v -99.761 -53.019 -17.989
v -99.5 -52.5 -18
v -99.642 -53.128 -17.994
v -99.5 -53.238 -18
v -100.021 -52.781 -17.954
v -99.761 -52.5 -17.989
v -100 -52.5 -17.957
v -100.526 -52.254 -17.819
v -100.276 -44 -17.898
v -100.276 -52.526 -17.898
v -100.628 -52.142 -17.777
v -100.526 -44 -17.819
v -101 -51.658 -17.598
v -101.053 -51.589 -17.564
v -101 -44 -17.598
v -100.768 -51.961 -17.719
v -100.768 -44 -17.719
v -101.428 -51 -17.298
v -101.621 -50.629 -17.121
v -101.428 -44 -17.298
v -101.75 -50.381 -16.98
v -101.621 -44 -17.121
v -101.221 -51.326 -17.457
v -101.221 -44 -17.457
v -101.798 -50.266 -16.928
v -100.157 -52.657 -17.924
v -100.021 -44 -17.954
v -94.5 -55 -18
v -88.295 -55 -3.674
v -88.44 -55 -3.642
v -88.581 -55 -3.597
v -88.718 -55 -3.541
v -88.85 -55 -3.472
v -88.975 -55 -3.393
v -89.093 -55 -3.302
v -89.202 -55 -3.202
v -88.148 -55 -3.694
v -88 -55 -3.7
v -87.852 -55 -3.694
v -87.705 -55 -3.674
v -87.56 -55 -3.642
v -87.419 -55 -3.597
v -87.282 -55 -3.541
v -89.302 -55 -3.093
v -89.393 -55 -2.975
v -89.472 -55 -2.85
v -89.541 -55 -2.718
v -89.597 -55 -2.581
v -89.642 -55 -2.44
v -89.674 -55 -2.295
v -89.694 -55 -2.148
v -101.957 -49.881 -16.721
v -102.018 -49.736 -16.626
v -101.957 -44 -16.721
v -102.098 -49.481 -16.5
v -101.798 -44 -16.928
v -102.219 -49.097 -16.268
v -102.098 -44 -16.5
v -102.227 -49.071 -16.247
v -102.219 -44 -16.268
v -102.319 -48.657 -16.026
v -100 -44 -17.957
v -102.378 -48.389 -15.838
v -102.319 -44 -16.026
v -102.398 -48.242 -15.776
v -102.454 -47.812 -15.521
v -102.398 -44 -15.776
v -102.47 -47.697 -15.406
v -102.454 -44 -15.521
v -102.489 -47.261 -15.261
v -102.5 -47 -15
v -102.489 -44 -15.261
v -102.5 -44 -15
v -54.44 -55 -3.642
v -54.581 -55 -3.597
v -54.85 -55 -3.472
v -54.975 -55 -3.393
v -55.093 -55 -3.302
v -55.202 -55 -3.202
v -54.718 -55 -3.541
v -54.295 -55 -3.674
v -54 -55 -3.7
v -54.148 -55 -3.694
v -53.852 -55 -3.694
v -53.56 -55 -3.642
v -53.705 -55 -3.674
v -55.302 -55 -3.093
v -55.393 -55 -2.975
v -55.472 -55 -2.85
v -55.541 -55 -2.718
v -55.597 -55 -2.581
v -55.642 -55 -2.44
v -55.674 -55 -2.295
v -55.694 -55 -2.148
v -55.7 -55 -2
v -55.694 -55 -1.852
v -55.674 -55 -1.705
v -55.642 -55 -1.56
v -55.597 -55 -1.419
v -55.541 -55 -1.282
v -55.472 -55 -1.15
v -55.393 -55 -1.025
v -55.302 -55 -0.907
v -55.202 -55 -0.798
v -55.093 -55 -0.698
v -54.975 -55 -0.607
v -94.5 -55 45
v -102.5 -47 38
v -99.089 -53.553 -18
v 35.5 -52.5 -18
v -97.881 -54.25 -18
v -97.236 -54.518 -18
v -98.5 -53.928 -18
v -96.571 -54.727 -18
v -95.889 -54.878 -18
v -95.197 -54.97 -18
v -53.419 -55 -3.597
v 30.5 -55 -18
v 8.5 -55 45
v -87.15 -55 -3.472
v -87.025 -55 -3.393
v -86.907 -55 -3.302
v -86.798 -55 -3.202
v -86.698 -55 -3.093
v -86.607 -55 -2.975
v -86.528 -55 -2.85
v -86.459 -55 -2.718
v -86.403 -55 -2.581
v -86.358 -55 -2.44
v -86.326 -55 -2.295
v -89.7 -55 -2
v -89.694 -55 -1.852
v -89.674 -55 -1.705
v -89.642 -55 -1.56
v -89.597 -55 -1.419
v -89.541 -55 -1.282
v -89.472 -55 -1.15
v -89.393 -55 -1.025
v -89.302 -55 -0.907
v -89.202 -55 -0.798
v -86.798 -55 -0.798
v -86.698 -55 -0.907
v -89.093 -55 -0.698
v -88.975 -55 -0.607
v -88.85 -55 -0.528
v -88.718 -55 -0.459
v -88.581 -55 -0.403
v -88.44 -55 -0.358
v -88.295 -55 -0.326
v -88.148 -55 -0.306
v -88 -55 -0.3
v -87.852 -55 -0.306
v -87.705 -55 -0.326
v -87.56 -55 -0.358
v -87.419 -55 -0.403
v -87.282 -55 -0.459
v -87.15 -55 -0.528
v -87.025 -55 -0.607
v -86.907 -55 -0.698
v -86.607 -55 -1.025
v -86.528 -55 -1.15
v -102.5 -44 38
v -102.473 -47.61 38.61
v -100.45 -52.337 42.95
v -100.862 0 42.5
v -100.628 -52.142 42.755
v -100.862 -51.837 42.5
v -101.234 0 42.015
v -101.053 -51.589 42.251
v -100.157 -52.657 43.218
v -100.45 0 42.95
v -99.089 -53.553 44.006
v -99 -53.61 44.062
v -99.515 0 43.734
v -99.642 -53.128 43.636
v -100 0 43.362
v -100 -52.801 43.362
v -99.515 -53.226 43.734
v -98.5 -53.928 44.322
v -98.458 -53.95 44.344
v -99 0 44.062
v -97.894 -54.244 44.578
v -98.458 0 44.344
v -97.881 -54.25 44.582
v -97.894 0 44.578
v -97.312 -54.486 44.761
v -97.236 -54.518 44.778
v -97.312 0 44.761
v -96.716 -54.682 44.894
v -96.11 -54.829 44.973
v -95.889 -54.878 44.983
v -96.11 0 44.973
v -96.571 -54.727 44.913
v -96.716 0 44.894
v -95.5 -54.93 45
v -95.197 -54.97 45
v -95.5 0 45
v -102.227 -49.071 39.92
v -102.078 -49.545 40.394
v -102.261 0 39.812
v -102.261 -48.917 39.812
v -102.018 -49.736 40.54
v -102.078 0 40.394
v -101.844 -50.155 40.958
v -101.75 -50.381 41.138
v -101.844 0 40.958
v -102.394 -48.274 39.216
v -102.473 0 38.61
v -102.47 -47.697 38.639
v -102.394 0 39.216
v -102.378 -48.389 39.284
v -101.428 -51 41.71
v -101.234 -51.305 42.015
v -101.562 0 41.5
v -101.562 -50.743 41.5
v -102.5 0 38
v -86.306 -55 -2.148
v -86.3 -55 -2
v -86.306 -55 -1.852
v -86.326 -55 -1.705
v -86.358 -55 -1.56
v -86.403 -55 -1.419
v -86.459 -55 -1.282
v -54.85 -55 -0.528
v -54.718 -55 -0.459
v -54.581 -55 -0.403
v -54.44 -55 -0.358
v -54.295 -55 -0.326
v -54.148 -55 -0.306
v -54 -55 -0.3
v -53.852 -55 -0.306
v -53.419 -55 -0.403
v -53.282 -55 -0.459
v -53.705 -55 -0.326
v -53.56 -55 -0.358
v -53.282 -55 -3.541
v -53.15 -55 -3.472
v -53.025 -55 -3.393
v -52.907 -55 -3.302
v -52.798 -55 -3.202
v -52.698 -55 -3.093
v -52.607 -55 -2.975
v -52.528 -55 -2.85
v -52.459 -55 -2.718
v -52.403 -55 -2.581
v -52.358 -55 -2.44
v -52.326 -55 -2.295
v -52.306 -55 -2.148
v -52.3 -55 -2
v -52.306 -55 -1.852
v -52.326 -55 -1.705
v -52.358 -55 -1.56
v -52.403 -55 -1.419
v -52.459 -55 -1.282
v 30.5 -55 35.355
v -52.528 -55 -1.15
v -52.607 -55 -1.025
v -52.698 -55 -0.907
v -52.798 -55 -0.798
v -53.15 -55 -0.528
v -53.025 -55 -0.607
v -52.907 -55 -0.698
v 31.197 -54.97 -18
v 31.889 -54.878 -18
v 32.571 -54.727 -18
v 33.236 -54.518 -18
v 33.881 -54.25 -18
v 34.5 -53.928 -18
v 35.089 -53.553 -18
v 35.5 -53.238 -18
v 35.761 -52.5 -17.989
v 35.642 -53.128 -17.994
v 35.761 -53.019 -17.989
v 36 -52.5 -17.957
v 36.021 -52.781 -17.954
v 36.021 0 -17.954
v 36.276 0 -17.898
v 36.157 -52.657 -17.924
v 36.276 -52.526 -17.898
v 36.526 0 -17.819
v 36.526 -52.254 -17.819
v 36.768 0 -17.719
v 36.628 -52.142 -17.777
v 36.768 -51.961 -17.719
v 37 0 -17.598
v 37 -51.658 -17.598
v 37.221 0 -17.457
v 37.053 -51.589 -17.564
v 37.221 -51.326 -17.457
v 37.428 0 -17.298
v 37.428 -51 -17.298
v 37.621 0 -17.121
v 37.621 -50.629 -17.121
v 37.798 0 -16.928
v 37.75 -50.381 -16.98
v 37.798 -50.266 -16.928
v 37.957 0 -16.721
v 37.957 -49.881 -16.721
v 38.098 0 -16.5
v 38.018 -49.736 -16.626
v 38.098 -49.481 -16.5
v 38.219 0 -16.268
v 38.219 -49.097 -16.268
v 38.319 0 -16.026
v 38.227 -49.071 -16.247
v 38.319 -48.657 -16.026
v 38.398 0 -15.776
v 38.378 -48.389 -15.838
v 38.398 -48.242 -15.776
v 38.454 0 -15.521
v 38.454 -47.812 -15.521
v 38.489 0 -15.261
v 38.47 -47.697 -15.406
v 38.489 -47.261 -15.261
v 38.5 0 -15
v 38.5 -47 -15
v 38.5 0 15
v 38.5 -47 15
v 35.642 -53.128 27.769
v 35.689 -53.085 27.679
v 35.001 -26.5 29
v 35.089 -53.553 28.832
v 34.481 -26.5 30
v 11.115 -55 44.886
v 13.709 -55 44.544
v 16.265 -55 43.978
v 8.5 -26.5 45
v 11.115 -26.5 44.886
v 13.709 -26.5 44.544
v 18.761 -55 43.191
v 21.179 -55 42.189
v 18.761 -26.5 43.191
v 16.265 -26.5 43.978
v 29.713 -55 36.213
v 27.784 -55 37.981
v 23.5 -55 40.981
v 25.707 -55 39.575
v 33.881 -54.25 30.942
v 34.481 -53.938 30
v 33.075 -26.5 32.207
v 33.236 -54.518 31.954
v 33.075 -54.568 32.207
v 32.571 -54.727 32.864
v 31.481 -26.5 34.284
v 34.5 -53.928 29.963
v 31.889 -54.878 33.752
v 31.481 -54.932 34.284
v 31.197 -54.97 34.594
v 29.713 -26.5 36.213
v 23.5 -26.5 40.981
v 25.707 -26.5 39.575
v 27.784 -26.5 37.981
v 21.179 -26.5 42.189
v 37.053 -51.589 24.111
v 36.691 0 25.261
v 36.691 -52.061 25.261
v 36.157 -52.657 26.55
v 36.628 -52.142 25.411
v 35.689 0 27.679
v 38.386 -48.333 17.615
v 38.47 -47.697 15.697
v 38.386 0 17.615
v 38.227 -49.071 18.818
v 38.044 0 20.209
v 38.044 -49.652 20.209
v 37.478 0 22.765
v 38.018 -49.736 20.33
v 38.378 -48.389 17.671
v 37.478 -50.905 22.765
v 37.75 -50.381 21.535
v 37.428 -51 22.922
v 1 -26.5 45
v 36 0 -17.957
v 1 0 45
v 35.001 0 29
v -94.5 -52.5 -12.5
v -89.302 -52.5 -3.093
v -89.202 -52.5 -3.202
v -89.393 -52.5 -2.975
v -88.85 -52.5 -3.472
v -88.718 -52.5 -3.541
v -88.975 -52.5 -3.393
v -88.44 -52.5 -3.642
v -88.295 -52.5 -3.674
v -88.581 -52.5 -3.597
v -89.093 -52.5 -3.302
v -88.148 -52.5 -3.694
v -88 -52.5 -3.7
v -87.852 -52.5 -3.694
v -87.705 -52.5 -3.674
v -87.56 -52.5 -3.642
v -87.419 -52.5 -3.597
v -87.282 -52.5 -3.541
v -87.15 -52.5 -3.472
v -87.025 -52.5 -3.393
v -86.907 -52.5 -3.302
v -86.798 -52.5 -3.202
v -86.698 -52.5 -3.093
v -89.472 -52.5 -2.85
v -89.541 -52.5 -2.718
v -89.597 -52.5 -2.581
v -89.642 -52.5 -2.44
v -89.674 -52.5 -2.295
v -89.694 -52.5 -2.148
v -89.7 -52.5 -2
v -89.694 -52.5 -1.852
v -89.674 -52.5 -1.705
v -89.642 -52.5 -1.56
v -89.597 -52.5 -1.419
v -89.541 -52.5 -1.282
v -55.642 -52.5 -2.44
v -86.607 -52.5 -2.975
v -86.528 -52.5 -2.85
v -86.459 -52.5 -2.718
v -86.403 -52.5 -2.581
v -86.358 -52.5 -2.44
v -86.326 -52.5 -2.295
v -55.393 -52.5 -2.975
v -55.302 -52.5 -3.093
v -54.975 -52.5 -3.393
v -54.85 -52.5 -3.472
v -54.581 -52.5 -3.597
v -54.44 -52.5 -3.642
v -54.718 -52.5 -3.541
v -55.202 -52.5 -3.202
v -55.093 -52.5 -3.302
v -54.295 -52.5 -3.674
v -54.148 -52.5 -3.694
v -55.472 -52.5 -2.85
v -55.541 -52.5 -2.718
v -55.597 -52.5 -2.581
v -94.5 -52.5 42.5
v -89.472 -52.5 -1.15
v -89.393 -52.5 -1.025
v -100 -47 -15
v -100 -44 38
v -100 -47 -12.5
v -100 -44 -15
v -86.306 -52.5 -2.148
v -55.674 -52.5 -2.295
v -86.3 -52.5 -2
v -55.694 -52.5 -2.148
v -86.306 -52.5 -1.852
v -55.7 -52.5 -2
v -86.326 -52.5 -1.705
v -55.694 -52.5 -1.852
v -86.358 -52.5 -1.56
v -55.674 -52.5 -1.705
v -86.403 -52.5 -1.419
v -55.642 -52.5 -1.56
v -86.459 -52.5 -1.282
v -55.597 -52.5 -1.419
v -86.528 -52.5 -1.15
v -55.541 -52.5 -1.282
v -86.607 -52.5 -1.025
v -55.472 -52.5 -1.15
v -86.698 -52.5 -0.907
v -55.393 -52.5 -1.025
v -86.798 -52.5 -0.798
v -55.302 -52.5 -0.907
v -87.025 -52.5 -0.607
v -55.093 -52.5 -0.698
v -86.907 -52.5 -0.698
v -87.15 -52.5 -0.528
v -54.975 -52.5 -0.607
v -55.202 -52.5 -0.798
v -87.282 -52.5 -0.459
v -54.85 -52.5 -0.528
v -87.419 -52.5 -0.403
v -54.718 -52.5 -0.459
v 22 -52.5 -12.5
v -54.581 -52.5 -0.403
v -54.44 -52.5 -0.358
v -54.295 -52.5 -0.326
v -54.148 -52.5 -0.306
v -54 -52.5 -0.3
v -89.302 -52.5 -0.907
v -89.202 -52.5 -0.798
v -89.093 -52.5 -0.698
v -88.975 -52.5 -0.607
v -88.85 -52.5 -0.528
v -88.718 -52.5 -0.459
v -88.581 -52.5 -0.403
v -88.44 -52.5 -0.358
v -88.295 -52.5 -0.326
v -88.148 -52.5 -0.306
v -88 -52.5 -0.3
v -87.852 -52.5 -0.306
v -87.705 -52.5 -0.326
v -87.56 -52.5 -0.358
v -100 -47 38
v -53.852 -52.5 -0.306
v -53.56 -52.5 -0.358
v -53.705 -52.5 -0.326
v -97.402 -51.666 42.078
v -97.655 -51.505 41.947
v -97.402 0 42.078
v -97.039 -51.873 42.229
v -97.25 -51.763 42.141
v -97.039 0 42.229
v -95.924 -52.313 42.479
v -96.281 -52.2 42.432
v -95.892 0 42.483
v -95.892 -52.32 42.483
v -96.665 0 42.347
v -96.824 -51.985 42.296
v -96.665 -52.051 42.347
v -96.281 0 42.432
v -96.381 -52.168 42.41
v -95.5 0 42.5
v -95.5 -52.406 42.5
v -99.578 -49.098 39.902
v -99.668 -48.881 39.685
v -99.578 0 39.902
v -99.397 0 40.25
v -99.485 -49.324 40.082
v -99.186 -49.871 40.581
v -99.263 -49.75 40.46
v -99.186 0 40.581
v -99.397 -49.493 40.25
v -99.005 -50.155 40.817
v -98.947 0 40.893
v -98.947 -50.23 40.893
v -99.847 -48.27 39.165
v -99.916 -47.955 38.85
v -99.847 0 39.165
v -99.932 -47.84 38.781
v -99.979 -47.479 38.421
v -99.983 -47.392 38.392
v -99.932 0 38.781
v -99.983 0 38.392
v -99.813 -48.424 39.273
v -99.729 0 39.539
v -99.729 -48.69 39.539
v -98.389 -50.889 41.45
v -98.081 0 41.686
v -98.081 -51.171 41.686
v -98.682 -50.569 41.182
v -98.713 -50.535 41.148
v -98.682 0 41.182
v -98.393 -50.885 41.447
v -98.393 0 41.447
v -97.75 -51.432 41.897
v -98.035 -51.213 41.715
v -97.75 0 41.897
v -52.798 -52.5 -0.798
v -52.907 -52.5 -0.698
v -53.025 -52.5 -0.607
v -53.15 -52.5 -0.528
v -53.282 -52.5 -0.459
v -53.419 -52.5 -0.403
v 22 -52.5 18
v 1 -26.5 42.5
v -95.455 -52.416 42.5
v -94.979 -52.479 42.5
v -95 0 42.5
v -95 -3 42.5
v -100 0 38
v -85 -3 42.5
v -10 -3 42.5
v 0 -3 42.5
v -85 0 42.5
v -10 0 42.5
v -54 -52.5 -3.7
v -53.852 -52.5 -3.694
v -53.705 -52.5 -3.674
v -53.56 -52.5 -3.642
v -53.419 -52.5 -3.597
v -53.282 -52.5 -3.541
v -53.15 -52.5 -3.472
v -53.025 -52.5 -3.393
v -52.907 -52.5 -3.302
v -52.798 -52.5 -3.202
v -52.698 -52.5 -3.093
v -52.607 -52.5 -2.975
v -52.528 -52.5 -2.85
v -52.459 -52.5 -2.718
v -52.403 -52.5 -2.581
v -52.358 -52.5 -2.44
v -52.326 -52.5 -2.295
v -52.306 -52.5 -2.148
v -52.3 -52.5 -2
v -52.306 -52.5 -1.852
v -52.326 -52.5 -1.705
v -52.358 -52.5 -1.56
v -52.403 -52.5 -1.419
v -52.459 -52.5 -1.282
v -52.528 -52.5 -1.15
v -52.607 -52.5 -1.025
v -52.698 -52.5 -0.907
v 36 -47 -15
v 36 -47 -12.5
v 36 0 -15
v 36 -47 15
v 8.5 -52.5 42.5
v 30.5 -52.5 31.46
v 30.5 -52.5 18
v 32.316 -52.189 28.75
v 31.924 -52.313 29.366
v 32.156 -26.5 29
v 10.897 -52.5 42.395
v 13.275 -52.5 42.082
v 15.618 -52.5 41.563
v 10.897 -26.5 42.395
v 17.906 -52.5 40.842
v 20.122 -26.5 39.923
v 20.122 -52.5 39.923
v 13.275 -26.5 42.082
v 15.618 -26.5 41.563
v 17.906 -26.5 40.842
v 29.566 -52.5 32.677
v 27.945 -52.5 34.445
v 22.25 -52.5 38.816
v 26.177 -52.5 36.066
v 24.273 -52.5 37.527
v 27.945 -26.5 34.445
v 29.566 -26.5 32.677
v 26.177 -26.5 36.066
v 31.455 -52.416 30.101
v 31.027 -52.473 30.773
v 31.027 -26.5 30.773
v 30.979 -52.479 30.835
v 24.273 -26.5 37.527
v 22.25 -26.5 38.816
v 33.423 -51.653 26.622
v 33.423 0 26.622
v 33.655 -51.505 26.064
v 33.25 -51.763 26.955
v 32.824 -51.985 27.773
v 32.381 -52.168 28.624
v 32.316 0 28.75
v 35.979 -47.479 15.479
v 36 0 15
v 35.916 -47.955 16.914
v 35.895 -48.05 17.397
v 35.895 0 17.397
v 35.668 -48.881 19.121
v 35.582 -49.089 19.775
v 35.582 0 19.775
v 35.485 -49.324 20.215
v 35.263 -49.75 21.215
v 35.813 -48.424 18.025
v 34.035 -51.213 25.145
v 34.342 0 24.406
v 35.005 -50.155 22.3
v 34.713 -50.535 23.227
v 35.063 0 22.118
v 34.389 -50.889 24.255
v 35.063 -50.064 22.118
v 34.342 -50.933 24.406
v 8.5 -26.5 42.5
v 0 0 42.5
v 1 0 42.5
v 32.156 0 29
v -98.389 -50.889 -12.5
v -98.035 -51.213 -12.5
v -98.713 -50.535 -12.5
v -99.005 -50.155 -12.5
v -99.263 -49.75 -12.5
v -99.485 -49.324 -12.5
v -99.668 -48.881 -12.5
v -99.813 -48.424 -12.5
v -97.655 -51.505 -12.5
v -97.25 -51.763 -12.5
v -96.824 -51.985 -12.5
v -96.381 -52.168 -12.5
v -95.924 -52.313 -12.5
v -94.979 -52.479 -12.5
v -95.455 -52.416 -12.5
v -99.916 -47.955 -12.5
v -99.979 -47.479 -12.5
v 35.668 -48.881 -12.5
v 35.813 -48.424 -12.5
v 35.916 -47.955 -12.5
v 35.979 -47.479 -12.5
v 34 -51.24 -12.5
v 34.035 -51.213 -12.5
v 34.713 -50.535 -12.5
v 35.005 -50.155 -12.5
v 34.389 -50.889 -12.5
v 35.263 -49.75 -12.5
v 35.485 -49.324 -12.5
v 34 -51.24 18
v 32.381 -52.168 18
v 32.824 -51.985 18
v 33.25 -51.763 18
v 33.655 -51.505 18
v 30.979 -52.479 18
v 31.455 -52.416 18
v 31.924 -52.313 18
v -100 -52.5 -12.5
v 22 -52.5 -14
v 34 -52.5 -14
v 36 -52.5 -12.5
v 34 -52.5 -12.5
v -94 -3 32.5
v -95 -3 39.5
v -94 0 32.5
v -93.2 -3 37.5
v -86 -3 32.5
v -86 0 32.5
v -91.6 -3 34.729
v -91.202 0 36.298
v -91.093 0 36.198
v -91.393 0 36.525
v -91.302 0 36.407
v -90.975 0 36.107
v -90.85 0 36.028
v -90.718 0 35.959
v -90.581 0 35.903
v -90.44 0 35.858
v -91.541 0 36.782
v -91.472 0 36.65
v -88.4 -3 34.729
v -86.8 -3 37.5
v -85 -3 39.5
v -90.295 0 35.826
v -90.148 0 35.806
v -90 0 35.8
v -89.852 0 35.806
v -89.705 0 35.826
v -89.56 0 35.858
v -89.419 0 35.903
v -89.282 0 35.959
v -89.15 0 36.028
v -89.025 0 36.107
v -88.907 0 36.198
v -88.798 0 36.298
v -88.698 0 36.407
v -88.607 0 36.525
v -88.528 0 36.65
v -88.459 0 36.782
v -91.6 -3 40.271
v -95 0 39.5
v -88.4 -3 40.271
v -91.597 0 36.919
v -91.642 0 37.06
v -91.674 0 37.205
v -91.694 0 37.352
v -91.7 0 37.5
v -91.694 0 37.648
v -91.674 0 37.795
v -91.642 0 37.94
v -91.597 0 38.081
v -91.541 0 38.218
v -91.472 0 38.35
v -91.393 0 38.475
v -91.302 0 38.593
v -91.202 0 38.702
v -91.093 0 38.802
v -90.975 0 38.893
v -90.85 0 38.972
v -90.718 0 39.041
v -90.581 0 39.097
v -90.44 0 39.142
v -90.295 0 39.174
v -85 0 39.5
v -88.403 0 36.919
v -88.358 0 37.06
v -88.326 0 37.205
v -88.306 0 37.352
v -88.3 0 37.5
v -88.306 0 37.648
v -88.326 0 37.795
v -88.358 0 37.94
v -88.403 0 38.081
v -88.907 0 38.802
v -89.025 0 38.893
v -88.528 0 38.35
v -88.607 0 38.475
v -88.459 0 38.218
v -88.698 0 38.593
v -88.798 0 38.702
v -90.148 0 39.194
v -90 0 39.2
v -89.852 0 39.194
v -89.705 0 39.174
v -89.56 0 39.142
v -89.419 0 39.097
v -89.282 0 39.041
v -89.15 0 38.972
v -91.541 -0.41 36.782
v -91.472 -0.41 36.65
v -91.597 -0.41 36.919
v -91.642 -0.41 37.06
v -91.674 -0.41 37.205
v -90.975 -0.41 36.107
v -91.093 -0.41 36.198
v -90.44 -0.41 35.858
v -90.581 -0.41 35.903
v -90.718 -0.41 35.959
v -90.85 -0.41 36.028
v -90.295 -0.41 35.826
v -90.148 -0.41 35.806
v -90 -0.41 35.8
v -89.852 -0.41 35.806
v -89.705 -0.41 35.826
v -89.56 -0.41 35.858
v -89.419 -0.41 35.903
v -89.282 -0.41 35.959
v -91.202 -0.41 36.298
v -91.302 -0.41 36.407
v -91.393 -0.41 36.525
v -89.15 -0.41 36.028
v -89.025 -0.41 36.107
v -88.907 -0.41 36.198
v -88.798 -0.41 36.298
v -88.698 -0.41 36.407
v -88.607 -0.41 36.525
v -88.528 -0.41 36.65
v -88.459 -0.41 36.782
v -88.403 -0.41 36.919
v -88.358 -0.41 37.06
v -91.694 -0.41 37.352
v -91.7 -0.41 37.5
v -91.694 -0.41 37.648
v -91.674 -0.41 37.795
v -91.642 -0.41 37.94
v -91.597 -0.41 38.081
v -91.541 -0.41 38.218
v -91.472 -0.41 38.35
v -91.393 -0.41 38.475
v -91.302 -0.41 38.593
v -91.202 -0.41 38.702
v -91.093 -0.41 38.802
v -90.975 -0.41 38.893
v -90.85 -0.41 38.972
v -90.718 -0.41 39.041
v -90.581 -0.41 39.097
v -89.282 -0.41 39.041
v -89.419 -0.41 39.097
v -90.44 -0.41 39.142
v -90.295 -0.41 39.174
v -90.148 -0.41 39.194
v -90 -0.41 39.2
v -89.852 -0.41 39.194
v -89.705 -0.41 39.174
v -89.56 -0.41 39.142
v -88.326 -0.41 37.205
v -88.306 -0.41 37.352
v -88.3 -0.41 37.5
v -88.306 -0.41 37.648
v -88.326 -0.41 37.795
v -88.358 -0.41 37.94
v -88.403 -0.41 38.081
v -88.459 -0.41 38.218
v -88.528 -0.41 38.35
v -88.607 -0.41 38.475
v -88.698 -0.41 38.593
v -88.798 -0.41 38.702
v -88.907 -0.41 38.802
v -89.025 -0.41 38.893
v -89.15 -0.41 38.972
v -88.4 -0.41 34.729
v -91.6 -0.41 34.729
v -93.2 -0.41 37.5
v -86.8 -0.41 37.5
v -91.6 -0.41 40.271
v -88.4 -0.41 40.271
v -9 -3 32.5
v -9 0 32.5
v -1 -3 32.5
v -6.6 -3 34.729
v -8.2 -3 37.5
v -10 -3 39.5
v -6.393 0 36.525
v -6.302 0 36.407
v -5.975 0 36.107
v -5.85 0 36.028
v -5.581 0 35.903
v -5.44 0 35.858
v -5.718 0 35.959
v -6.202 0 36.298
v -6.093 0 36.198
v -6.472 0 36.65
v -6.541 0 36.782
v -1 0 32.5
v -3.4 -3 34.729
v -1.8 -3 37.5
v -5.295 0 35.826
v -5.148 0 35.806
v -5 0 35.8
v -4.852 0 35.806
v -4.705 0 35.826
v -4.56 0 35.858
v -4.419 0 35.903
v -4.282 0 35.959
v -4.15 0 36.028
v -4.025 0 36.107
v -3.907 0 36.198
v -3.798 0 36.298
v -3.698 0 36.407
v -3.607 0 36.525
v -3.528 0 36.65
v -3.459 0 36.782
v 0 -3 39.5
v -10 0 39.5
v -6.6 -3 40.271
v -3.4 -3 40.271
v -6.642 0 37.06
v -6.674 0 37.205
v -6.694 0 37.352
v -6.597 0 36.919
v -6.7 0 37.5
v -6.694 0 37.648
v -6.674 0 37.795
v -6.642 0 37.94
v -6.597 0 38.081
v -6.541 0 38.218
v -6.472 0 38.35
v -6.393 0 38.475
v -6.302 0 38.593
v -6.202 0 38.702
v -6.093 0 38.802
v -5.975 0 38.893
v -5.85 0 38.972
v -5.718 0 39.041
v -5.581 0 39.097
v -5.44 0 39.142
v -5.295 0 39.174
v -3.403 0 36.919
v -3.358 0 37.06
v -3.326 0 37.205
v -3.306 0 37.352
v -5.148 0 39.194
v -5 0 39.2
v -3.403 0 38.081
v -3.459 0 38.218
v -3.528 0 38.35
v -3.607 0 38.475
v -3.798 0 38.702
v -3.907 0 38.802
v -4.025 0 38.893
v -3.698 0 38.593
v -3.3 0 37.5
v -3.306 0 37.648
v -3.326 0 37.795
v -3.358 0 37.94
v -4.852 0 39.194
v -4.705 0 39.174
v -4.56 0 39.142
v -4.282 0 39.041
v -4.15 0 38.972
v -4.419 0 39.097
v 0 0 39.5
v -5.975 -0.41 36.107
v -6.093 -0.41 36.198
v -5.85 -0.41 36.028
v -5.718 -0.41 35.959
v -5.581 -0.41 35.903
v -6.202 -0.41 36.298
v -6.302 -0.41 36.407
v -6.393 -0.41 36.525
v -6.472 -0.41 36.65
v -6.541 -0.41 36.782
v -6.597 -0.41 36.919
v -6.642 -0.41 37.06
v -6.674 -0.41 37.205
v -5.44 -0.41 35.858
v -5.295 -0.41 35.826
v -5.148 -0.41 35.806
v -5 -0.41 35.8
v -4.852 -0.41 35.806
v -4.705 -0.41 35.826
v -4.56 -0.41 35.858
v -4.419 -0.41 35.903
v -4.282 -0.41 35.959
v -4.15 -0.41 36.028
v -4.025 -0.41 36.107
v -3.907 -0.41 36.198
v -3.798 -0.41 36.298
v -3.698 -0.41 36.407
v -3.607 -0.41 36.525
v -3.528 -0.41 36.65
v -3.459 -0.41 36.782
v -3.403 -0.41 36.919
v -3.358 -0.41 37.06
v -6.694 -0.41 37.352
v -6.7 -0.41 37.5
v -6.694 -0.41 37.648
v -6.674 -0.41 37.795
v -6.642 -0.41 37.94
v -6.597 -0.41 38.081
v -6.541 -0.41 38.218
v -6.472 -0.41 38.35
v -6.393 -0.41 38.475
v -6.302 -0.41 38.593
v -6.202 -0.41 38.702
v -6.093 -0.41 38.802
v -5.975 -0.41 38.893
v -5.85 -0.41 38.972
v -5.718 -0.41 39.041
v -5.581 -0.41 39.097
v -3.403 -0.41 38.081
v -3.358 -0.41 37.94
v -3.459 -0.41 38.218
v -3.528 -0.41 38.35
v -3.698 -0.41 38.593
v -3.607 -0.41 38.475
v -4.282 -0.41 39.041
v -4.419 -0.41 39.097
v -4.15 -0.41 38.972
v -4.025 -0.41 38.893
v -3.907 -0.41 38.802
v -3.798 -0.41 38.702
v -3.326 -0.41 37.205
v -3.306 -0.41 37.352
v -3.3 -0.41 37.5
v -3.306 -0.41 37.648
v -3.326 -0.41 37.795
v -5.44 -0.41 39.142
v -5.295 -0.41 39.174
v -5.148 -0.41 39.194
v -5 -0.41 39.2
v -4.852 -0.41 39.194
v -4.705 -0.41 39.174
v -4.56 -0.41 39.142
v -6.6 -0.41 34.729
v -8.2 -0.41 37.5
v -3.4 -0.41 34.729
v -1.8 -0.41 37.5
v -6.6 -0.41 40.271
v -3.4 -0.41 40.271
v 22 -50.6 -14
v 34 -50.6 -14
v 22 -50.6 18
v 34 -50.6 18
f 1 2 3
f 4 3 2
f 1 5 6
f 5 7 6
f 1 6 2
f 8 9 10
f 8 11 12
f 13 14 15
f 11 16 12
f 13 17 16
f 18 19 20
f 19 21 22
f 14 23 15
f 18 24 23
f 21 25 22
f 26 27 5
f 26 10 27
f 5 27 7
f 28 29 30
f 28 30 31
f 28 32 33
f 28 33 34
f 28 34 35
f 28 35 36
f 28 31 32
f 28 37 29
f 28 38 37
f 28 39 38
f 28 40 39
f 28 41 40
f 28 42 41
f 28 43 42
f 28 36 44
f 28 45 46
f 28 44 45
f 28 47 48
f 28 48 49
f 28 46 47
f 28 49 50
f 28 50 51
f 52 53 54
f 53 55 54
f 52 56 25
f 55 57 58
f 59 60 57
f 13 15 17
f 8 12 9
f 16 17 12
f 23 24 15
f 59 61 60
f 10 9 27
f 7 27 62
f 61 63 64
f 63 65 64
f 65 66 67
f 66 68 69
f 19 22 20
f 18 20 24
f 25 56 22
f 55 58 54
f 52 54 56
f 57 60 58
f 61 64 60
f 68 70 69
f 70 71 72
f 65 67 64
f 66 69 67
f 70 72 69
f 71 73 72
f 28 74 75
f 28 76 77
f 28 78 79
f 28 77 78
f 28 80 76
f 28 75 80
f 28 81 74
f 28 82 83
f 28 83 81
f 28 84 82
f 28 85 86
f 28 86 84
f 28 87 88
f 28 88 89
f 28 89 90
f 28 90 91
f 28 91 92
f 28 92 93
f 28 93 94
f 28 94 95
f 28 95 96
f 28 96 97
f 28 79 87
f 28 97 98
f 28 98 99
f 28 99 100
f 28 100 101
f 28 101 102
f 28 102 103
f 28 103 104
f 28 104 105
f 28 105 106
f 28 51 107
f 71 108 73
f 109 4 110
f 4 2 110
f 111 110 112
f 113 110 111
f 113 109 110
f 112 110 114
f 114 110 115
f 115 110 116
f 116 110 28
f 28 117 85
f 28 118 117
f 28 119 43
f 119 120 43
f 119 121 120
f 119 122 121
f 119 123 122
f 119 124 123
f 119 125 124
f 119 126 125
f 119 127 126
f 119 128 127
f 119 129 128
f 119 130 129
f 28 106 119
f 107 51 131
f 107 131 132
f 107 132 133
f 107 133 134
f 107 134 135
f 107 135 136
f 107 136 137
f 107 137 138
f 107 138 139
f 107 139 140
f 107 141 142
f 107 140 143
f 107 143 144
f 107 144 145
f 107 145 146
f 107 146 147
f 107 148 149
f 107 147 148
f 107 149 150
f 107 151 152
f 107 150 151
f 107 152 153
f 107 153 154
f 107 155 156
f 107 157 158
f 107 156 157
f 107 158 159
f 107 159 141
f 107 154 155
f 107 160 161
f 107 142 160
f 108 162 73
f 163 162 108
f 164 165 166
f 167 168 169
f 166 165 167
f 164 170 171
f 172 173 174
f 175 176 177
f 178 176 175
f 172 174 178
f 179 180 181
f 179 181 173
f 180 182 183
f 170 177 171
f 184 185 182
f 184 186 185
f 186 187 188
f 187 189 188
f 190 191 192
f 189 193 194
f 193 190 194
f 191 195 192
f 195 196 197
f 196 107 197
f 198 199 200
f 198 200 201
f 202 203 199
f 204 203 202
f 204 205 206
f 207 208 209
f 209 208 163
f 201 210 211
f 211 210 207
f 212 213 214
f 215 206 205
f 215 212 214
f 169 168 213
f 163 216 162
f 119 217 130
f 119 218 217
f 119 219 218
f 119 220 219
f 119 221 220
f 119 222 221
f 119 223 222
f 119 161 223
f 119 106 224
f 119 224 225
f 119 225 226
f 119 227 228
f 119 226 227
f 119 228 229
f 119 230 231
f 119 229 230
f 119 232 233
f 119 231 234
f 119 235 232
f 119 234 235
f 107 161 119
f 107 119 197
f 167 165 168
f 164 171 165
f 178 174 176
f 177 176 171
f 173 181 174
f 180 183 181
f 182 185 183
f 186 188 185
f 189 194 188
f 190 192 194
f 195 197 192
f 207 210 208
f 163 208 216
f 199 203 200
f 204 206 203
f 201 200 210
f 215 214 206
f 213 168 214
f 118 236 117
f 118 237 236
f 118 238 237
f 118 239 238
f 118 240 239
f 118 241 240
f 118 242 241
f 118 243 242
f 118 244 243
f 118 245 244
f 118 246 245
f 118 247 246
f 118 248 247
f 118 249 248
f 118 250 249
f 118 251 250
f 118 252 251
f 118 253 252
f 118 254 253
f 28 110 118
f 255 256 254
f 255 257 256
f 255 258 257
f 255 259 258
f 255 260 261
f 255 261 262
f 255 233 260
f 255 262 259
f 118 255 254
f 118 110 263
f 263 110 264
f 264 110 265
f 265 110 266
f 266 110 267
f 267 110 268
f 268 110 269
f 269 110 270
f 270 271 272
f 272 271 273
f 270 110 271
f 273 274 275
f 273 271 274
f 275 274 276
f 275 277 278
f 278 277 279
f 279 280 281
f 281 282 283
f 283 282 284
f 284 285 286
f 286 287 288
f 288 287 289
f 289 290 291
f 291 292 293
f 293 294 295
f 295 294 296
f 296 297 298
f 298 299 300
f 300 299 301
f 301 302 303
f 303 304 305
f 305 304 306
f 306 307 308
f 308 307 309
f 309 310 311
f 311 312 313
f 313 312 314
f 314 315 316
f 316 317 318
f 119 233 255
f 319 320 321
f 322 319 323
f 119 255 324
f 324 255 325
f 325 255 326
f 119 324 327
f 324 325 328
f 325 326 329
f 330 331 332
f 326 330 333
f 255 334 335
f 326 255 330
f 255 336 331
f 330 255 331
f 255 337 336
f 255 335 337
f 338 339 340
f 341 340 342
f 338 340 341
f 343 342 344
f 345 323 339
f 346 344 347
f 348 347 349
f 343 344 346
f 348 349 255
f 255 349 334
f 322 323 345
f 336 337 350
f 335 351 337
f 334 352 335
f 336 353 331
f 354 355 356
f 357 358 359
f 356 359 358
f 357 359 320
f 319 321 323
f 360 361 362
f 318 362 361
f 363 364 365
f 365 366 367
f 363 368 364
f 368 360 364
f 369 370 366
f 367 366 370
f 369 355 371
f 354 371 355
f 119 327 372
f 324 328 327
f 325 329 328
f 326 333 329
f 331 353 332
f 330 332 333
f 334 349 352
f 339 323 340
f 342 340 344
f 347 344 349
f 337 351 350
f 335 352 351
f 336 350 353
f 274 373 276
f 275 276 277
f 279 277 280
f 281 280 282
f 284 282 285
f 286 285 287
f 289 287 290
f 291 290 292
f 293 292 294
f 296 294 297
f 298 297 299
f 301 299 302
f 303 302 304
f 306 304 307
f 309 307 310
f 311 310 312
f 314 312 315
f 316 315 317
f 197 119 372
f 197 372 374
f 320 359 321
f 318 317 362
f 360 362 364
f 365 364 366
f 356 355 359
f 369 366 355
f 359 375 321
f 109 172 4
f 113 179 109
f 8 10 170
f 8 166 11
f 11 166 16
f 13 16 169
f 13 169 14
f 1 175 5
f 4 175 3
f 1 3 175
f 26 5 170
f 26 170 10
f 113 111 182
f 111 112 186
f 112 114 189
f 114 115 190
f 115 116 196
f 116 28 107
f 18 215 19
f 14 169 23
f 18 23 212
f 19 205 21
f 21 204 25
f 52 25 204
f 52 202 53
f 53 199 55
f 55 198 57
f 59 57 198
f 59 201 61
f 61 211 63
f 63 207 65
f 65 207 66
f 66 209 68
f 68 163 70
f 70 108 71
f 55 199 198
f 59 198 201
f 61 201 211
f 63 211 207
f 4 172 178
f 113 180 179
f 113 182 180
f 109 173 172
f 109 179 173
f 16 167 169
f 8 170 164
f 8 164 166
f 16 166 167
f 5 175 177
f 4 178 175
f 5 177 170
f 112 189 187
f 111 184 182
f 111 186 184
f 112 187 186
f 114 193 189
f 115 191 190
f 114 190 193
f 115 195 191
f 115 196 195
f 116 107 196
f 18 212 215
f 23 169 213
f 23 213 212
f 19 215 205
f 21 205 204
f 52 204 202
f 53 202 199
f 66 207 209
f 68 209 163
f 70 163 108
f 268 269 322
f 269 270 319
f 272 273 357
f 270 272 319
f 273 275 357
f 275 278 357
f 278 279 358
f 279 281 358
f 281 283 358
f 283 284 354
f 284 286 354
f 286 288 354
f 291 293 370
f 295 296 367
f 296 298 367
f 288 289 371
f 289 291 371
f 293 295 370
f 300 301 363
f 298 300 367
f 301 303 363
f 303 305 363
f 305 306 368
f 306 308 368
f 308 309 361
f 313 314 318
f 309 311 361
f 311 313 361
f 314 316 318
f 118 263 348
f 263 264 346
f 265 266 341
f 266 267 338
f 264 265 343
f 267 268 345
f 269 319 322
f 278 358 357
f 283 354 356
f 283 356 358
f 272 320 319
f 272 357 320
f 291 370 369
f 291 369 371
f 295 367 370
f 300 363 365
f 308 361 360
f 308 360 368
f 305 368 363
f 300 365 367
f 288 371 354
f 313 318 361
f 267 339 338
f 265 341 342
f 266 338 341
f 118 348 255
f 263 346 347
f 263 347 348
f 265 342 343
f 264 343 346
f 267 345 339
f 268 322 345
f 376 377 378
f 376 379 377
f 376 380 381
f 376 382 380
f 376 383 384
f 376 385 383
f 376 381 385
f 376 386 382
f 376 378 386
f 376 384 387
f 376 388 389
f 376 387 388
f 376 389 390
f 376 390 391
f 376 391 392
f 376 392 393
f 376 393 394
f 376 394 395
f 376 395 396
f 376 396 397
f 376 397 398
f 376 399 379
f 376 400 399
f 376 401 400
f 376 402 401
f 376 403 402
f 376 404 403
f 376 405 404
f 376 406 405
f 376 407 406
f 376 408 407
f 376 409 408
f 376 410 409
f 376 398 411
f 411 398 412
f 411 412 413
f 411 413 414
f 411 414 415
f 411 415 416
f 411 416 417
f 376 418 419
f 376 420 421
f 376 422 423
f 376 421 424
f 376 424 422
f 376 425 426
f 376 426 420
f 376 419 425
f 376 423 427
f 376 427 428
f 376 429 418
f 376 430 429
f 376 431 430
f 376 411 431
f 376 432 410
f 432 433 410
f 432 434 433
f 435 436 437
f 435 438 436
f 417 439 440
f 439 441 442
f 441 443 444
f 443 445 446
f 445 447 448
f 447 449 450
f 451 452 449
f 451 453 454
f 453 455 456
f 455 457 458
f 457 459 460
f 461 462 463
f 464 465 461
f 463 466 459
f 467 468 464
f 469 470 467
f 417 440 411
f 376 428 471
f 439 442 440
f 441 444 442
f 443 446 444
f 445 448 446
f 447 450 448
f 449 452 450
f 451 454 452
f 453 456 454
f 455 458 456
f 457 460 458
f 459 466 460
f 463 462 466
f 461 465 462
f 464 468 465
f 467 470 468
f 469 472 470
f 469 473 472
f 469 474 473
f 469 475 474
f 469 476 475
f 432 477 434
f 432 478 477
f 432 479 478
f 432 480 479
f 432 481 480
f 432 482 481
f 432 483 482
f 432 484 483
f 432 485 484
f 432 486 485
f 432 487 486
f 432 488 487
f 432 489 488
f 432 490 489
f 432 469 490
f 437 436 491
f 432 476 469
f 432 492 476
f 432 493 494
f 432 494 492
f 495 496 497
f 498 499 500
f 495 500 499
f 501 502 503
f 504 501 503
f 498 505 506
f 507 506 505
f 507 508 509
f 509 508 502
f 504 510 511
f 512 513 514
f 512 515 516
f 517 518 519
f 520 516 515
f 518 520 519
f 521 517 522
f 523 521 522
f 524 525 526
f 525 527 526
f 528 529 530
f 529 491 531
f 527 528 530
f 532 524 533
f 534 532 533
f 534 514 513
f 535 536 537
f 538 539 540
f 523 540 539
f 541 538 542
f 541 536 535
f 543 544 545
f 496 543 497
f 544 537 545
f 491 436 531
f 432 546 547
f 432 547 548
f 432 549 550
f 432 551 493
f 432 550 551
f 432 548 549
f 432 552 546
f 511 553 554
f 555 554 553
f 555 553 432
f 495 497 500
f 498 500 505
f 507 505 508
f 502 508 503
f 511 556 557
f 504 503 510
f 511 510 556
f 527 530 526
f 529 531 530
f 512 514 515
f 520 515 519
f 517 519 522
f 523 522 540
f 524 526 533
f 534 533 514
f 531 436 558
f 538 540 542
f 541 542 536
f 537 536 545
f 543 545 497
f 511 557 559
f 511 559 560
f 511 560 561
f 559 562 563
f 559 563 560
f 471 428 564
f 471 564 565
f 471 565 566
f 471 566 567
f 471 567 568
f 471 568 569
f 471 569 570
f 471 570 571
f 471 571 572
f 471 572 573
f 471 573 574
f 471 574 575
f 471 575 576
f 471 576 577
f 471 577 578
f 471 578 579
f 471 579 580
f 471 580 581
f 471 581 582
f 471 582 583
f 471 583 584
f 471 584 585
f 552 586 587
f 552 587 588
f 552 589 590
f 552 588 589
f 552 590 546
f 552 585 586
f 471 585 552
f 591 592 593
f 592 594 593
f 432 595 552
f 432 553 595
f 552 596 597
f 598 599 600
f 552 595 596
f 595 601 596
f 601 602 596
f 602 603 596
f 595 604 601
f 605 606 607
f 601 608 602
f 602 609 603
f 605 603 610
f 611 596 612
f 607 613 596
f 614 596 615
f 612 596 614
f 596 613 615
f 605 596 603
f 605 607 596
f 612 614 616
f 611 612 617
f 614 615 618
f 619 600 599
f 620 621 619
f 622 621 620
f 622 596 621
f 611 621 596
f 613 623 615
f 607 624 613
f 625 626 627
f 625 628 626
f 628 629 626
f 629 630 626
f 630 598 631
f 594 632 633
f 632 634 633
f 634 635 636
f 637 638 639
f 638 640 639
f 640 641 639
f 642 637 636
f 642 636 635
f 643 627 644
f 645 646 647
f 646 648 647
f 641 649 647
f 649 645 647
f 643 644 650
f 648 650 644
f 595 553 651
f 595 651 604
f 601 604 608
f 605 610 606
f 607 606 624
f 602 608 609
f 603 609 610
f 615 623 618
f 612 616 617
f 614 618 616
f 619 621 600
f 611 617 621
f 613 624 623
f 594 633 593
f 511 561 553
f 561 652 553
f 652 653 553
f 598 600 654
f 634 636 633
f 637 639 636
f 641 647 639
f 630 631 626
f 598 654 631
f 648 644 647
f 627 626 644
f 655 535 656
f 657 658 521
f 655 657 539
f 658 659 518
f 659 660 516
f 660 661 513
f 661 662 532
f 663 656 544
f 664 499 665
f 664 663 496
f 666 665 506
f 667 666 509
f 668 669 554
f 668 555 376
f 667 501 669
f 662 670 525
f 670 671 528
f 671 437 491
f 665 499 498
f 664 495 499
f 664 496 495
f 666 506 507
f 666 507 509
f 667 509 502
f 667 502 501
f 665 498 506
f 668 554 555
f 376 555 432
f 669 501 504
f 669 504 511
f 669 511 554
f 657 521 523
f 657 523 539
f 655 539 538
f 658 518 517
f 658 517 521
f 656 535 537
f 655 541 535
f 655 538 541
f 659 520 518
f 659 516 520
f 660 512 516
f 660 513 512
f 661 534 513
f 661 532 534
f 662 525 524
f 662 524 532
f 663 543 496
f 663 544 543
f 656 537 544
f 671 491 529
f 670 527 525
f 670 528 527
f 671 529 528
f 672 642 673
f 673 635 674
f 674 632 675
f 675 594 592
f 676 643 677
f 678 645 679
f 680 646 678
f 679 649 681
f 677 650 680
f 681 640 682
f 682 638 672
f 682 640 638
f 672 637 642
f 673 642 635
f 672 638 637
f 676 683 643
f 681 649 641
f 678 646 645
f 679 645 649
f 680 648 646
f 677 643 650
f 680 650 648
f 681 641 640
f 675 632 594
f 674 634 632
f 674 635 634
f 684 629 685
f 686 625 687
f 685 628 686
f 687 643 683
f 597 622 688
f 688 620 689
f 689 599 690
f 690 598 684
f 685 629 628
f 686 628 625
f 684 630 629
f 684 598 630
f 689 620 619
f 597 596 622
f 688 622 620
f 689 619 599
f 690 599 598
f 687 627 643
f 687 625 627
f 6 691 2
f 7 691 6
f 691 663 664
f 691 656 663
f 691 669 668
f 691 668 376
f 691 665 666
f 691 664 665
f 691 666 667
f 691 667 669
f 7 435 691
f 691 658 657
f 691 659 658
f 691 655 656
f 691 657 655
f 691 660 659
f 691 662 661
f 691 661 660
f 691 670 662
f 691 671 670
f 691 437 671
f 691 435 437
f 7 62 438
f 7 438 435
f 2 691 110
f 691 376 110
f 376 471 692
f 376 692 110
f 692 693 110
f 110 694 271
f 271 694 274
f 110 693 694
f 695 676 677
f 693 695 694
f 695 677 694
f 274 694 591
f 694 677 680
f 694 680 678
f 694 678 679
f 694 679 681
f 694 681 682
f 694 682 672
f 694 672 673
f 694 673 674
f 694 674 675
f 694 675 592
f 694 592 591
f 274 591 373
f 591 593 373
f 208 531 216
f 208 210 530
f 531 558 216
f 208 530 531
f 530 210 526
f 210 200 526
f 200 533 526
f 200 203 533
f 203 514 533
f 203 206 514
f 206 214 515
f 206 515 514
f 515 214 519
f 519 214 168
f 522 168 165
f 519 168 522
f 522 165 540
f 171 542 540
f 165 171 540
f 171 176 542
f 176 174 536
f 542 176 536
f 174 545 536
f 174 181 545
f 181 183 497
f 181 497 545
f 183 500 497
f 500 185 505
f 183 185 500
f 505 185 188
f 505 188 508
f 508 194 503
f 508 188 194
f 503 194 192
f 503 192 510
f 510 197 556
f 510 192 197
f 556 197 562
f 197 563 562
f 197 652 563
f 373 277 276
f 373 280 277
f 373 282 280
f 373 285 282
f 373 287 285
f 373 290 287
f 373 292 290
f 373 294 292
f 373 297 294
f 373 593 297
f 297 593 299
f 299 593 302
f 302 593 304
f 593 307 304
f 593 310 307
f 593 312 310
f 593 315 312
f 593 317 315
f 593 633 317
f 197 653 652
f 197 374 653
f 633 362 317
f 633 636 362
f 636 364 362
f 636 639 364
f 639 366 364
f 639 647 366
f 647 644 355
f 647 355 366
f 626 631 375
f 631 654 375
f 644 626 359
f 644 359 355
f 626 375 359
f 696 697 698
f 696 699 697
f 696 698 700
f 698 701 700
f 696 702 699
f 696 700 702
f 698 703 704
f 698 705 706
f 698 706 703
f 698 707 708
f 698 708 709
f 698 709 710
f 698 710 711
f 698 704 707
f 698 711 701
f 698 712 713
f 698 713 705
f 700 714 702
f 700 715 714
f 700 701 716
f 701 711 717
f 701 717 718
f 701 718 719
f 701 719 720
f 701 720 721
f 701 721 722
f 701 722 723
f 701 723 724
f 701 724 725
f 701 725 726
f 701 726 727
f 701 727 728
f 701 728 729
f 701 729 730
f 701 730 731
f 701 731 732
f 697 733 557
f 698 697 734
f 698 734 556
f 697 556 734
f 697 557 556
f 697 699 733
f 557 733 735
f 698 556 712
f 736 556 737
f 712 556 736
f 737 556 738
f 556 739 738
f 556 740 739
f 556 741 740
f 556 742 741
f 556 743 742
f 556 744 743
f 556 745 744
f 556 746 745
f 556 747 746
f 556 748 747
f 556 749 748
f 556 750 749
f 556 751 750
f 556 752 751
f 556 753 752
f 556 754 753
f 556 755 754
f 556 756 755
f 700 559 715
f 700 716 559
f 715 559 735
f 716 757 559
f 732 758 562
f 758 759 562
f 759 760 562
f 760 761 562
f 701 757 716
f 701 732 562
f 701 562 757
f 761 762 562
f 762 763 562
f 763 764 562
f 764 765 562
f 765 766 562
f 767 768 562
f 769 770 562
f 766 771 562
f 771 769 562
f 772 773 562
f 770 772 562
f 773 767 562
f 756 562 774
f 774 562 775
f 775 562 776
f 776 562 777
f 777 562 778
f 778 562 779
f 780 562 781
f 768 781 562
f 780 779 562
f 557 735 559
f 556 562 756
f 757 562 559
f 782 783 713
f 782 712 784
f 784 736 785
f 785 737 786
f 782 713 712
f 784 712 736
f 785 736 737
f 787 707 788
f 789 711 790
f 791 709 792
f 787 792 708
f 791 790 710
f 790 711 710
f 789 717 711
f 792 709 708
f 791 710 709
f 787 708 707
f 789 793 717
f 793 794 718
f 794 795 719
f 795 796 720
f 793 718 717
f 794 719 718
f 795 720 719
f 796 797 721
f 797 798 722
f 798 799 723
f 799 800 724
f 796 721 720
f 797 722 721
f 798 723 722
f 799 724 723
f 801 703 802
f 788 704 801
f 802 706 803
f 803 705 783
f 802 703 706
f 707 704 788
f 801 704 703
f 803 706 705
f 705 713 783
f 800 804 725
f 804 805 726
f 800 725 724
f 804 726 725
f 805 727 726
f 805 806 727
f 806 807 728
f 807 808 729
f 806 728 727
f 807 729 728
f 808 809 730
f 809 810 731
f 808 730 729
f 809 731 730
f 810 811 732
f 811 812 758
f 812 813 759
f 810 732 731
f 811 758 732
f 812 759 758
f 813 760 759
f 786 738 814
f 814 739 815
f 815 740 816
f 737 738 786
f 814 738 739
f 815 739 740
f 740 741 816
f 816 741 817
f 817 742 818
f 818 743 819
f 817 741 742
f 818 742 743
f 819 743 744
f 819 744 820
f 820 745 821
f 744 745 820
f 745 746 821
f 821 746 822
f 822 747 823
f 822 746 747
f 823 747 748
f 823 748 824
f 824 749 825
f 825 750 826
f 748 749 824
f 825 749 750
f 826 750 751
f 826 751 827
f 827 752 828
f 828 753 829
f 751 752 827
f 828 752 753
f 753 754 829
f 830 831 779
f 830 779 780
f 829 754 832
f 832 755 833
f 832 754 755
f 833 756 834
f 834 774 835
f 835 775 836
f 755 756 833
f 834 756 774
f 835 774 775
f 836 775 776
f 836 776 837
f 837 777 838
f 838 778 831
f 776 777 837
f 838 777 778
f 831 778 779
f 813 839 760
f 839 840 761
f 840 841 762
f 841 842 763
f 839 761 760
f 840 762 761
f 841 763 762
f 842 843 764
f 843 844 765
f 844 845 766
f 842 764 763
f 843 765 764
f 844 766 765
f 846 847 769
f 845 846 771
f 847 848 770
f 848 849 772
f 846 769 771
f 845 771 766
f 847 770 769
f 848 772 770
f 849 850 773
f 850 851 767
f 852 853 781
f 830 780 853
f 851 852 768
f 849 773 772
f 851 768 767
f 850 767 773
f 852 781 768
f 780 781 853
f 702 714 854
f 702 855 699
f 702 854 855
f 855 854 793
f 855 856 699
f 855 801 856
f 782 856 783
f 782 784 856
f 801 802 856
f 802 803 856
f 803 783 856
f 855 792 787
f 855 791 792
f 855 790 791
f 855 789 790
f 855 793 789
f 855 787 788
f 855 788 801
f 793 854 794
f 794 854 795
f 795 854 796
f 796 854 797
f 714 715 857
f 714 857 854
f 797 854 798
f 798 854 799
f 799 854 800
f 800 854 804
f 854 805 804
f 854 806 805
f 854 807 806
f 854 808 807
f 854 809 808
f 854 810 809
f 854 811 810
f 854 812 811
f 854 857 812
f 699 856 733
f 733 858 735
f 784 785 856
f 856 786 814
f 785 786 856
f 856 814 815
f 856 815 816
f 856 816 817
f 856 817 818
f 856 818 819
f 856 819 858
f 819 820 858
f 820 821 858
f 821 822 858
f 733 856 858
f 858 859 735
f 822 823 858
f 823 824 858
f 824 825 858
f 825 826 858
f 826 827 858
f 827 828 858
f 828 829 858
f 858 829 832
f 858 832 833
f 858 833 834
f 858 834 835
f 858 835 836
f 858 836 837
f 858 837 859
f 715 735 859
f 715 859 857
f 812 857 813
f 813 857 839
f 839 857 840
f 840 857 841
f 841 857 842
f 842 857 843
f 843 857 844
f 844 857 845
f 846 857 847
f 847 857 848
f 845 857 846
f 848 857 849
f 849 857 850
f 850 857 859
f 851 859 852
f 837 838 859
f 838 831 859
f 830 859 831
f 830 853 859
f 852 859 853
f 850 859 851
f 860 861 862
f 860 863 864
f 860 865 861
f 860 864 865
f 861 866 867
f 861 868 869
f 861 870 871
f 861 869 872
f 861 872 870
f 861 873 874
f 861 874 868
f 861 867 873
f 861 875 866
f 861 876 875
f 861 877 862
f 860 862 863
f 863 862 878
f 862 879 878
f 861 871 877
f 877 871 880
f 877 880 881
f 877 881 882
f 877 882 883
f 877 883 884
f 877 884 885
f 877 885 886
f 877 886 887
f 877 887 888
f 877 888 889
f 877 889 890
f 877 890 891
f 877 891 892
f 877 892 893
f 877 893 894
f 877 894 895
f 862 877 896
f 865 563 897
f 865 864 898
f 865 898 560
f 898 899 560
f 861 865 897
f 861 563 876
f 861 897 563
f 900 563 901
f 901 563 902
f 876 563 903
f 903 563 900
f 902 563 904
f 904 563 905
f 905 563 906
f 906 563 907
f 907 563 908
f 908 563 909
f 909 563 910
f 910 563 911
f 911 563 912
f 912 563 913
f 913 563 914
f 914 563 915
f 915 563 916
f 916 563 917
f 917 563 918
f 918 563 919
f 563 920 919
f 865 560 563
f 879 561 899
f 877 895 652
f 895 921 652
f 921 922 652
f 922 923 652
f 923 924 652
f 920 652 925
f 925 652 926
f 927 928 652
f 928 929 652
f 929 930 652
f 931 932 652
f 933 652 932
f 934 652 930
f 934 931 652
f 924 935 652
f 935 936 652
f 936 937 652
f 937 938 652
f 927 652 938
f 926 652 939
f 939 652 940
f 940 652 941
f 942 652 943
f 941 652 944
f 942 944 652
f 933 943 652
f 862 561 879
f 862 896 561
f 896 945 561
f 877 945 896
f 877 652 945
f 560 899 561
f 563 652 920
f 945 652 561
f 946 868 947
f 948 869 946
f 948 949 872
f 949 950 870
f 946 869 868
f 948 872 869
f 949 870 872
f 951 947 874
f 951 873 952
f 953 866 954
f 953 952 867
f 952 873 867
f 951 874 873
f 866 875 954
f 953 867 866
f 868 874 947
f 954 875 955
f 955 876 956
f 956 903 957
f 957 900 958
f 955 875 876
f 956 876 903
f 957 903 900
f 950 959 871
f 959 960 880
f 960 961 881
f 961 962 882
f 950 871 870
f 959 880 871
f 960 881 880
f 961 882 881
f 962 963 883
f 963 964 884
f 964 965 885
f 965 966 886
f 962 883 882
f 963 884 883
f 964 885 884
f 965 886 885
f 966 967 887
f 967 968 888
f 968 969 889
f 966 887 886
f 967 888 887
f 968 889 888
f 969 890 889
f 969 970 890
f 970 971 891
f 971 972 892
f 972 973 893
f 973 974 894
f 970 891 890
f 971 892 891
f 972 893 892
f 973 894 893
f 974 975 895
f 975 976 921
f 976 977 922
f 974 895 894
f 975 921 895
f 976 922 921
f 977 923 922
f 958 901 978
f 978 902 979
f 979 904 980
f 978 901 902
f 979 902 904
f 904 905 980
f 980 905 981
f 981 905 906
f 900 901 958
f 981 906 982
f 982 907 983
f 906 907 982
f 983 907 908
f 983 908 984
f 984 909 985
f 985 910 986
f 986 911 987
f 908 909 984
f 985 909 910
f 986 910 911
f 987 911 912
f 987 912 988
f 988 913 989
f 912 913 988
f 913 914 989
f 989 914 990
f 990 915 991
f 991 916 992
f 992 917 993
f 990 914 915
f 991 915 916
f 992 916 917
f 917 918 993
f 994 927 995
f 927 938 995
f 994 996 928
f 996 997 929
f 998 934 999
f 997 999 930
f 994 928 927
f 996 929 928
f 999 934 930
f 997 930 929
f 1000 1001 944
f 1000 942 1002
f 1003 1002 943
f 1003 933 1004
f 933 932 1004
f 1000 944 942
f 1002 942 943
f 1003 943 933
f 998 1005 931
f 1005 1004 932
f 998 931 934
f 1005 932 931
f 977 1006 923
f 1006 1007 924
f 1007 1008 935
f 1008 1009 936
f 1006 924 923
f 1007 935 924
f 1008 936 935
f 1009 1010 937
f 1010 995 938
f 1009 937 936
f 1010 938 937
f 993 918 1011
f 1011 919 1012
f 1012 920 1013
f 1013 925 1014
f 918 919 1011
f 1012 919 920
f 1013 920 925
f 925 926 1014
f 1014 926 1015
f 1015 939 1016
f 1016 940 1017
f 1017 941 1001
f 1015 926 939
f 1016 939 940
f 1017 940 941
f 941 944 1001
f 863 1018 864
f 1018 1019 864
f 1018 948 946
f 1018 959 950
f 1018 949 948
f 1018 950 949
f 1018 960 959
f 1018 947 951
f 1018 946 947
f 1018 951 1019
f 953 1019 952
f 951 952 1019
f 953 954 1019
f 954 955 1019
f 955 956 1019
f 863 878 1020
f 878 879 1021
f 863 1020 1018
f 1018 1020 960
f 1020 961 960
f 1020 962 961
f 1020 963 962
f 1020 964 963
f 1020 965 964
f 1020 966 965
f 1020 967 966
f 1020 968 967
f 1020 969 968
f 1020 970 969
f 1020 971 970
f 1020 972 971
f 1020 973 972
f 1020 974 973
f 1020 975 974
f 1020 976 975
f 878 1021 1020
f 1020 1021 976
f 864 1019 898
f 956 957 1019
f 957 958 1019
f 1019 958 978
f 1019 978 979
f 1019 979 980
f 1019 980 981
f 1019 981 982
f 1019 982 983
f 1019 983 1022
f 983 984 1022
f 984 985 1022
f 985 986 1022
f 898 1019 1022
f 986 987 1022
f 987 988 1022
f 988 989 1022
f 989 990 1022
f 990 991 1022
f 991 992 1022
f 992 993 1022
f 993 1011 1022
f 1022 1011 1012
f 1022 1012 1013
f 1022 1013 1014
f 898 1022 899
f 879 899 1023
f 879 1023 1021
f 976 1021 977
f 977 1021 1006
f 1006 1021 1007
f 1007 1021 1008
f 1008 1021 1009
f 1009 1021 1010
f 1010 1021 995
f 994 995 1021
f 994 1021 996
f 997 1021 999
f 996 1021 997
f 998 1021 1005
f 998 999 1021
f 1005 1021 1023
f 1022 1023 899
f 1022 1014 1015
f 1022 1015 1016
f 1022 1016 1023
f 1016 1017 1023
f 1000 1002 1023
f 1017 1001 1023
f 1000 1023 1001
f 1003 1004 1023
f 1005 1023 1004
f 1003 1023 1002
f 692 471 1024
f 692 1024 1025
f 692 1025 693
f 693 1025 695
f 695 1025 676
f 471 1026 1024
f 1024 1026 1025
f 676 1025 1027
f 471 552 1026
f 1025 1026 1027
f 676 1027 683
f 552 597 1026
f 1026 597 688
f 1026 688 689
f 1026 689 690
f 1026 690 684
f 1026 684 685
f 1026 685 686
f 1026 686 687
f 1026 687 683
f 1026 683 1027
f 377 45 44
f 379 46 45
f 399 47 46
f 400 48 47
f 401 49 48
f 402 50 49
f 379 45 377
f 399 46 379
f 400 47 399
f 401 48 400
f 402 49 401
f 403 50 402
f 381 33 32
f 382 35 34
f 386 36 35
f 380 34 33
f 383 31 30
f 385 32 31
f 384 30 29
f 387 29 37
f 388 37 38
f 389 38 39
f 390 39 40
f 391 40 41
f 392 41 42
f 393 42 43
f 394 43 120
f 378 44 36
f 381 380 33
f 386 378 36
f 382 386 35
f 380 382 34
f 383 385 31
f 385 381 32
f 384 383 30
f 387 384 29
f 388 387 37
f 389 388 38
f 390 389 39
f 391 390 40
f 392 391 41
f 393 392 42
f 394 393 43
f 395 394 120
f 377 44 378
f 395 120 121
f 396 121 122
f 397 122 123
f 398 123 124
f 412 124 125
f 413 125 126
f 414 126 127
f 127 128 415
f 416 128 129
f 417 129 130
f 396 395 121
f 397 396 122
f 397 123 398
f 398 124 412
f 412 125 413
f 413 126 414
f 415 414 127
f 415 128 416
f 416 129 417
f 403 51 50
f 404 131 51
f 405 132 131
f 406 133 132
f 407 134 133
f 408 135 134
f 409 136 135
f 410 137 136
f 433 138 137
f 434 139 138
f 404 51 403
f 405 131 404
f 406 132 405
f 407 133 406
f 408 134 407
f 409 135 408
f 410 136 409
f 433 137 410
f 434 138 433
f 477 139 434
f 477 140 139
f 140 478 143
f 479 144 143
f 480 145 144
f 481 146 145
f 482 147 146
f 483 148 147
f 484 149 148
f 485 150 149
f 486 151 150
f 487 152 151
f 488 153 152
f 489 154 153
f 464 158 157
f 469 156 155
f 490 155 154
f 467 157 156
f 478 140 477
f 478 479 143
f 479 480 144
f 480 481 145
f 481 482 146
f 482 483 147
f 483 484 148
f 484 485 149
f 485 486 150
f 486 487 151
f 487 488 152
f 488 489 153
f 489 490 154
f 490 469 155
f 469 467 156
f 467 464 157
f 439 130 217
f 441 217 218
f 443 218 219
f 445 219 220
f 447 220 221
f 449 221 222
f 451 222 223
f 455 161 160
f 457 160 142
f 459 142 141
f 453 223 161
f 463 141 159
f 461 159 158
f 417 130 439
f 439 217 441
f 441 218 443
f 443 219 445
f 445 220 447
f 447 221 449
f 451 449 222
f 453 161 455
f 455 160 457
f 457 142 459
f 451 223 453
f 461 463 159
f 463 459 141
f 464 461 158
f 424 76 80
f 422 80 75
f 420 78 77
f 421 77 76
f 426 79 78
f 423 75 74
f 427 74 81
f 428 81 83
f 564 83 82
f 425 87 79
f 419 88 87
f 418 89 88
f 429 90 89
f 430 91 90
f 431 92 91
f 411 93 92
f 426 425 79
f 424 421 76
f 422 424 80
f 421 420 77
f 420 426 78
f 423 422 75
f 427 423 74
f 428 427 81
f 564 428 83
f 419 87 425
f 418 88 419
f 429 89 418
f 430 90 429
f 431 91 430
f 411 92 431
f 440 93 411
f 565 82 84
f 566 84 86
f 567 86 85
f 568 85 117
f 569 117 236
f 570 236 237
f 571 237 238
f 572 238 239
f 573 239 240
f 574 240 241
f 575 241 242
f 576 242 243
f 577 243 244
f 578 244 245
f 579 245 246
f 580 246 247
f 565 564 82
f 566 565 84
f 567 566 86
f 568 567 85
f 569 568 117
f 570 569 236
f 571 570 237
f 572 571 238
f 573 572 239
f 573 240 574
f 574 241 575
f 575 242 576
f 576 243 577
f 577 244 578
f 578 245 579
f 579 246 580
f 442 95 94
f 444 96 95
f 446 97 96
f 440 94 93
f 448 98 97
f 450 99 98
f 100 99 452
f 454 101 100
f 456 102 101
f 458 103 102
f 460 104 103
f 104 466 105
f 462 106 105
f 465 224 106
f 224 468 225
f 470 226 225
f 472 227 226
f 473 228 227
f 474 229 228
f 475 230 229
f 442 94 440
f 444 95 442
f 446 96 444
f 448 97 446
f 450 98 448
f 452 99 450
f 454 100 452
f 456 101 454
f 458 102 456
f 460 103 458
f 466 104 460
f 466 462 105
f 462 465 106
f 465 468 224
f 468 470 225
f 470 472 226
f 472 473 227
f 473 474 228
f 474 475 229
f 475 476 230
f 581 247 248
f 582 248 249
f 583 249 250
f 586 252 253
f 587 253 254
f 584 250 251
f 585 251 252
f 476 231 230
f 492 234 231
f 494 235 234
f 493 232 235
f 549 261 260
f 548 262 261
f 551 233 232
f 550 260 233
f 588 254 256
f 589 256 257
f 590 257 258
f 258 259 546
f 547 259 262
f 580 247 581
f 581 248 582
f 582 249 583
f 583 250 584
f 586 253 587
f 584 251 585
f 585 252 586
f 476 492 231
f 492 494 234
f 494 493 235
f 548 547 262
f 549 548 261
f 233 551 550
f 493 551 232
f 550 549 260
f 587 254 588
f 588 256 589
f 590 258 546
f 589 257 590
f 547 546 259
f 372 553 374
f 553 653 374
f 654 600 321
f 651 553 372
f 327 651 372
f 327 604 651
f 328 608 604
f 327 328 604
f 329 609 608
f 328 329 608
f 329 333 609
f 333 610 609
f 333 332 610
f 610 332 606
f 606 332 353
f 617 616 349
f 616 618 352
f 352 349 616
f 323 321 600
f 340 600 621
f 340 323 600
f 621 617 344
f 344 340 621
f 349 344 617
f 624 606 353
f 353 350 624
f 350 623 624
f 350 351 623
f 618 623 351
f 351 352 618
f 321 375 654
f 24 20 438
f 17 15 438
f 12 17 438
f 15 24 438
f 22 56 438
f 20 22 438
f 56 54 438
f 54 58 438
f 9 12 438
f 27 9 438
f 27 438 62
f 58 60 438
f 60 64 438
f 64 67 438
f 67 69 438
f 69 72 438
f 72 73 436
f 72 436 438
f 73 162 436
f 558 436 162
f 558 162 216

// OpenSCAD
// file: ../md_params.scad
// =====================================================================
//  Microduck-look skin for the Open Duck Mini v2 skeleton
//  Shared parameters and helpers.
//  Frame: Open Duck print/robot frame, mm. +x forward, +y left, +z up.
//  Every part is modelled where it sits on the robot (zero pose).
// =====================================================================

$fn = 72;
EPS = 0.01;

// ---------- fasteners ----------
INSERT_D   = 4.0;   // hole for M3 x 5 brass heat-set insert (Amazon B0DZ8B7FW1)
INSERT_L   = 6.0;   // hole depth for that insert
M3_CLR     = 3.4;   // M3 clearance
M3_HEAD    = 6.5;   // M3 socket-head counterbore
M3_NUT     = 6.4;   // M3 nut across corners (+clearance)
M2_TAP     = 1.8;   // M2 self-tapping pilot (SG90 tab screws, servo adapter)
M25_TAP    = 2.2;   // M2.5 self-tapping pilot (Radxa)
M2_CLR     = 2.4;

// ---------- colours (for previews only) ----------
C_WHITE = [0.95, 0.94, 0.90];
C_BLACK = [0.13, 0.13, 0.14];

// ---------- helpers ----------
function lerp(a, b, t) = a + (b - a) * t;

// Section with vertical sides from zb to zc and a superellipse cap from zc to zt.
// Points are (y, z). n = 2 gives an ellipse, larger n gives a squarer top.
function se_pts(w, zb, zc, zt, n, N = 56) =
    concat(
        [[ w, zb]],
        [for (i = [0:N]) let(t = i * 180 / N, c = cos(t), s = sin(t))
            [w * sign(c) * pow(abs(c), 2 / n), zc + (zt - zc) * pow(abs(s), 2 / n)]],
        [[-w, zb]]
    );

// st = [x, half_width, z_bottom, z_curve_start, z_top, exponent]
module station(st, inset = 0, ext = 0) {
    translate([st[0], 0, 0]) rotate([90, 0, 90])
        linear_extrude(height = EPS, center = true)
            offset(delta = -inset)
                polygon(se_pts(st[1], st[2] - ext, st[3], st[4], st[5]));
}

// piecewise loft through convex stations (hull of neighbours)
module loft(sts, inset = 0, ext = 0) {
    for (i = [0:len(sts) - 2])
        hull() { station(sts[i], inset, ext); station(sts[i + 1], inset, ext); }
}

// station parameters interpolated at any x inside the list
function st_at(sts, x) =
    let(i = max([for (k = [0:len(sts) - 2]) if (sts[k][0] <= x) k]),
        a = sts[i], b = sts[i + 1], t = (x - a[0]) / (b[0] - a[0]))
    [x, lerp(a[1], b[1], t), lerp(a[2], b[2], t), lerp(a[3], b[3], t),
        lerp(a[4], b[4], t), lerp(a[5], b[5], t)];

// heat-set insert pocket: opening at origin, going along -z by default
module insert_hole(depth = INSERT_L, d = INSERT_D) {
    translate([0, 0, -depth]) cylinder(d = d, h = depth + EPS);
    translate([0, 0, -0.6]) cylinder(d1 = d, d2 = d + 0.8, h = 0.6 + EPS);   // lead-in chamfer
}

// M3 clearance with counterbore, axis +z, counterbore at the top
module m3_cb(len_total, cb_depth) {
    translate([0, 0, -EPS]) cylinder(d = M3_CLR, h = len_total + 2 * EPS);
    translate([0, 0, len_total - cb_depth]) cylinder(d = M3_HEAD, h = cb_depth + 1);
}

module rrect(x0, x1, y0, y1, r) {
    translate([x0 + r, y0 + r]) offset(r = r) square([x1 - x0 - 2 * r, y1 - y0 - 2 * r]);
}
// main file
include <../md_params.scad>
include <../md_body.scad>
body_shell(-1);
